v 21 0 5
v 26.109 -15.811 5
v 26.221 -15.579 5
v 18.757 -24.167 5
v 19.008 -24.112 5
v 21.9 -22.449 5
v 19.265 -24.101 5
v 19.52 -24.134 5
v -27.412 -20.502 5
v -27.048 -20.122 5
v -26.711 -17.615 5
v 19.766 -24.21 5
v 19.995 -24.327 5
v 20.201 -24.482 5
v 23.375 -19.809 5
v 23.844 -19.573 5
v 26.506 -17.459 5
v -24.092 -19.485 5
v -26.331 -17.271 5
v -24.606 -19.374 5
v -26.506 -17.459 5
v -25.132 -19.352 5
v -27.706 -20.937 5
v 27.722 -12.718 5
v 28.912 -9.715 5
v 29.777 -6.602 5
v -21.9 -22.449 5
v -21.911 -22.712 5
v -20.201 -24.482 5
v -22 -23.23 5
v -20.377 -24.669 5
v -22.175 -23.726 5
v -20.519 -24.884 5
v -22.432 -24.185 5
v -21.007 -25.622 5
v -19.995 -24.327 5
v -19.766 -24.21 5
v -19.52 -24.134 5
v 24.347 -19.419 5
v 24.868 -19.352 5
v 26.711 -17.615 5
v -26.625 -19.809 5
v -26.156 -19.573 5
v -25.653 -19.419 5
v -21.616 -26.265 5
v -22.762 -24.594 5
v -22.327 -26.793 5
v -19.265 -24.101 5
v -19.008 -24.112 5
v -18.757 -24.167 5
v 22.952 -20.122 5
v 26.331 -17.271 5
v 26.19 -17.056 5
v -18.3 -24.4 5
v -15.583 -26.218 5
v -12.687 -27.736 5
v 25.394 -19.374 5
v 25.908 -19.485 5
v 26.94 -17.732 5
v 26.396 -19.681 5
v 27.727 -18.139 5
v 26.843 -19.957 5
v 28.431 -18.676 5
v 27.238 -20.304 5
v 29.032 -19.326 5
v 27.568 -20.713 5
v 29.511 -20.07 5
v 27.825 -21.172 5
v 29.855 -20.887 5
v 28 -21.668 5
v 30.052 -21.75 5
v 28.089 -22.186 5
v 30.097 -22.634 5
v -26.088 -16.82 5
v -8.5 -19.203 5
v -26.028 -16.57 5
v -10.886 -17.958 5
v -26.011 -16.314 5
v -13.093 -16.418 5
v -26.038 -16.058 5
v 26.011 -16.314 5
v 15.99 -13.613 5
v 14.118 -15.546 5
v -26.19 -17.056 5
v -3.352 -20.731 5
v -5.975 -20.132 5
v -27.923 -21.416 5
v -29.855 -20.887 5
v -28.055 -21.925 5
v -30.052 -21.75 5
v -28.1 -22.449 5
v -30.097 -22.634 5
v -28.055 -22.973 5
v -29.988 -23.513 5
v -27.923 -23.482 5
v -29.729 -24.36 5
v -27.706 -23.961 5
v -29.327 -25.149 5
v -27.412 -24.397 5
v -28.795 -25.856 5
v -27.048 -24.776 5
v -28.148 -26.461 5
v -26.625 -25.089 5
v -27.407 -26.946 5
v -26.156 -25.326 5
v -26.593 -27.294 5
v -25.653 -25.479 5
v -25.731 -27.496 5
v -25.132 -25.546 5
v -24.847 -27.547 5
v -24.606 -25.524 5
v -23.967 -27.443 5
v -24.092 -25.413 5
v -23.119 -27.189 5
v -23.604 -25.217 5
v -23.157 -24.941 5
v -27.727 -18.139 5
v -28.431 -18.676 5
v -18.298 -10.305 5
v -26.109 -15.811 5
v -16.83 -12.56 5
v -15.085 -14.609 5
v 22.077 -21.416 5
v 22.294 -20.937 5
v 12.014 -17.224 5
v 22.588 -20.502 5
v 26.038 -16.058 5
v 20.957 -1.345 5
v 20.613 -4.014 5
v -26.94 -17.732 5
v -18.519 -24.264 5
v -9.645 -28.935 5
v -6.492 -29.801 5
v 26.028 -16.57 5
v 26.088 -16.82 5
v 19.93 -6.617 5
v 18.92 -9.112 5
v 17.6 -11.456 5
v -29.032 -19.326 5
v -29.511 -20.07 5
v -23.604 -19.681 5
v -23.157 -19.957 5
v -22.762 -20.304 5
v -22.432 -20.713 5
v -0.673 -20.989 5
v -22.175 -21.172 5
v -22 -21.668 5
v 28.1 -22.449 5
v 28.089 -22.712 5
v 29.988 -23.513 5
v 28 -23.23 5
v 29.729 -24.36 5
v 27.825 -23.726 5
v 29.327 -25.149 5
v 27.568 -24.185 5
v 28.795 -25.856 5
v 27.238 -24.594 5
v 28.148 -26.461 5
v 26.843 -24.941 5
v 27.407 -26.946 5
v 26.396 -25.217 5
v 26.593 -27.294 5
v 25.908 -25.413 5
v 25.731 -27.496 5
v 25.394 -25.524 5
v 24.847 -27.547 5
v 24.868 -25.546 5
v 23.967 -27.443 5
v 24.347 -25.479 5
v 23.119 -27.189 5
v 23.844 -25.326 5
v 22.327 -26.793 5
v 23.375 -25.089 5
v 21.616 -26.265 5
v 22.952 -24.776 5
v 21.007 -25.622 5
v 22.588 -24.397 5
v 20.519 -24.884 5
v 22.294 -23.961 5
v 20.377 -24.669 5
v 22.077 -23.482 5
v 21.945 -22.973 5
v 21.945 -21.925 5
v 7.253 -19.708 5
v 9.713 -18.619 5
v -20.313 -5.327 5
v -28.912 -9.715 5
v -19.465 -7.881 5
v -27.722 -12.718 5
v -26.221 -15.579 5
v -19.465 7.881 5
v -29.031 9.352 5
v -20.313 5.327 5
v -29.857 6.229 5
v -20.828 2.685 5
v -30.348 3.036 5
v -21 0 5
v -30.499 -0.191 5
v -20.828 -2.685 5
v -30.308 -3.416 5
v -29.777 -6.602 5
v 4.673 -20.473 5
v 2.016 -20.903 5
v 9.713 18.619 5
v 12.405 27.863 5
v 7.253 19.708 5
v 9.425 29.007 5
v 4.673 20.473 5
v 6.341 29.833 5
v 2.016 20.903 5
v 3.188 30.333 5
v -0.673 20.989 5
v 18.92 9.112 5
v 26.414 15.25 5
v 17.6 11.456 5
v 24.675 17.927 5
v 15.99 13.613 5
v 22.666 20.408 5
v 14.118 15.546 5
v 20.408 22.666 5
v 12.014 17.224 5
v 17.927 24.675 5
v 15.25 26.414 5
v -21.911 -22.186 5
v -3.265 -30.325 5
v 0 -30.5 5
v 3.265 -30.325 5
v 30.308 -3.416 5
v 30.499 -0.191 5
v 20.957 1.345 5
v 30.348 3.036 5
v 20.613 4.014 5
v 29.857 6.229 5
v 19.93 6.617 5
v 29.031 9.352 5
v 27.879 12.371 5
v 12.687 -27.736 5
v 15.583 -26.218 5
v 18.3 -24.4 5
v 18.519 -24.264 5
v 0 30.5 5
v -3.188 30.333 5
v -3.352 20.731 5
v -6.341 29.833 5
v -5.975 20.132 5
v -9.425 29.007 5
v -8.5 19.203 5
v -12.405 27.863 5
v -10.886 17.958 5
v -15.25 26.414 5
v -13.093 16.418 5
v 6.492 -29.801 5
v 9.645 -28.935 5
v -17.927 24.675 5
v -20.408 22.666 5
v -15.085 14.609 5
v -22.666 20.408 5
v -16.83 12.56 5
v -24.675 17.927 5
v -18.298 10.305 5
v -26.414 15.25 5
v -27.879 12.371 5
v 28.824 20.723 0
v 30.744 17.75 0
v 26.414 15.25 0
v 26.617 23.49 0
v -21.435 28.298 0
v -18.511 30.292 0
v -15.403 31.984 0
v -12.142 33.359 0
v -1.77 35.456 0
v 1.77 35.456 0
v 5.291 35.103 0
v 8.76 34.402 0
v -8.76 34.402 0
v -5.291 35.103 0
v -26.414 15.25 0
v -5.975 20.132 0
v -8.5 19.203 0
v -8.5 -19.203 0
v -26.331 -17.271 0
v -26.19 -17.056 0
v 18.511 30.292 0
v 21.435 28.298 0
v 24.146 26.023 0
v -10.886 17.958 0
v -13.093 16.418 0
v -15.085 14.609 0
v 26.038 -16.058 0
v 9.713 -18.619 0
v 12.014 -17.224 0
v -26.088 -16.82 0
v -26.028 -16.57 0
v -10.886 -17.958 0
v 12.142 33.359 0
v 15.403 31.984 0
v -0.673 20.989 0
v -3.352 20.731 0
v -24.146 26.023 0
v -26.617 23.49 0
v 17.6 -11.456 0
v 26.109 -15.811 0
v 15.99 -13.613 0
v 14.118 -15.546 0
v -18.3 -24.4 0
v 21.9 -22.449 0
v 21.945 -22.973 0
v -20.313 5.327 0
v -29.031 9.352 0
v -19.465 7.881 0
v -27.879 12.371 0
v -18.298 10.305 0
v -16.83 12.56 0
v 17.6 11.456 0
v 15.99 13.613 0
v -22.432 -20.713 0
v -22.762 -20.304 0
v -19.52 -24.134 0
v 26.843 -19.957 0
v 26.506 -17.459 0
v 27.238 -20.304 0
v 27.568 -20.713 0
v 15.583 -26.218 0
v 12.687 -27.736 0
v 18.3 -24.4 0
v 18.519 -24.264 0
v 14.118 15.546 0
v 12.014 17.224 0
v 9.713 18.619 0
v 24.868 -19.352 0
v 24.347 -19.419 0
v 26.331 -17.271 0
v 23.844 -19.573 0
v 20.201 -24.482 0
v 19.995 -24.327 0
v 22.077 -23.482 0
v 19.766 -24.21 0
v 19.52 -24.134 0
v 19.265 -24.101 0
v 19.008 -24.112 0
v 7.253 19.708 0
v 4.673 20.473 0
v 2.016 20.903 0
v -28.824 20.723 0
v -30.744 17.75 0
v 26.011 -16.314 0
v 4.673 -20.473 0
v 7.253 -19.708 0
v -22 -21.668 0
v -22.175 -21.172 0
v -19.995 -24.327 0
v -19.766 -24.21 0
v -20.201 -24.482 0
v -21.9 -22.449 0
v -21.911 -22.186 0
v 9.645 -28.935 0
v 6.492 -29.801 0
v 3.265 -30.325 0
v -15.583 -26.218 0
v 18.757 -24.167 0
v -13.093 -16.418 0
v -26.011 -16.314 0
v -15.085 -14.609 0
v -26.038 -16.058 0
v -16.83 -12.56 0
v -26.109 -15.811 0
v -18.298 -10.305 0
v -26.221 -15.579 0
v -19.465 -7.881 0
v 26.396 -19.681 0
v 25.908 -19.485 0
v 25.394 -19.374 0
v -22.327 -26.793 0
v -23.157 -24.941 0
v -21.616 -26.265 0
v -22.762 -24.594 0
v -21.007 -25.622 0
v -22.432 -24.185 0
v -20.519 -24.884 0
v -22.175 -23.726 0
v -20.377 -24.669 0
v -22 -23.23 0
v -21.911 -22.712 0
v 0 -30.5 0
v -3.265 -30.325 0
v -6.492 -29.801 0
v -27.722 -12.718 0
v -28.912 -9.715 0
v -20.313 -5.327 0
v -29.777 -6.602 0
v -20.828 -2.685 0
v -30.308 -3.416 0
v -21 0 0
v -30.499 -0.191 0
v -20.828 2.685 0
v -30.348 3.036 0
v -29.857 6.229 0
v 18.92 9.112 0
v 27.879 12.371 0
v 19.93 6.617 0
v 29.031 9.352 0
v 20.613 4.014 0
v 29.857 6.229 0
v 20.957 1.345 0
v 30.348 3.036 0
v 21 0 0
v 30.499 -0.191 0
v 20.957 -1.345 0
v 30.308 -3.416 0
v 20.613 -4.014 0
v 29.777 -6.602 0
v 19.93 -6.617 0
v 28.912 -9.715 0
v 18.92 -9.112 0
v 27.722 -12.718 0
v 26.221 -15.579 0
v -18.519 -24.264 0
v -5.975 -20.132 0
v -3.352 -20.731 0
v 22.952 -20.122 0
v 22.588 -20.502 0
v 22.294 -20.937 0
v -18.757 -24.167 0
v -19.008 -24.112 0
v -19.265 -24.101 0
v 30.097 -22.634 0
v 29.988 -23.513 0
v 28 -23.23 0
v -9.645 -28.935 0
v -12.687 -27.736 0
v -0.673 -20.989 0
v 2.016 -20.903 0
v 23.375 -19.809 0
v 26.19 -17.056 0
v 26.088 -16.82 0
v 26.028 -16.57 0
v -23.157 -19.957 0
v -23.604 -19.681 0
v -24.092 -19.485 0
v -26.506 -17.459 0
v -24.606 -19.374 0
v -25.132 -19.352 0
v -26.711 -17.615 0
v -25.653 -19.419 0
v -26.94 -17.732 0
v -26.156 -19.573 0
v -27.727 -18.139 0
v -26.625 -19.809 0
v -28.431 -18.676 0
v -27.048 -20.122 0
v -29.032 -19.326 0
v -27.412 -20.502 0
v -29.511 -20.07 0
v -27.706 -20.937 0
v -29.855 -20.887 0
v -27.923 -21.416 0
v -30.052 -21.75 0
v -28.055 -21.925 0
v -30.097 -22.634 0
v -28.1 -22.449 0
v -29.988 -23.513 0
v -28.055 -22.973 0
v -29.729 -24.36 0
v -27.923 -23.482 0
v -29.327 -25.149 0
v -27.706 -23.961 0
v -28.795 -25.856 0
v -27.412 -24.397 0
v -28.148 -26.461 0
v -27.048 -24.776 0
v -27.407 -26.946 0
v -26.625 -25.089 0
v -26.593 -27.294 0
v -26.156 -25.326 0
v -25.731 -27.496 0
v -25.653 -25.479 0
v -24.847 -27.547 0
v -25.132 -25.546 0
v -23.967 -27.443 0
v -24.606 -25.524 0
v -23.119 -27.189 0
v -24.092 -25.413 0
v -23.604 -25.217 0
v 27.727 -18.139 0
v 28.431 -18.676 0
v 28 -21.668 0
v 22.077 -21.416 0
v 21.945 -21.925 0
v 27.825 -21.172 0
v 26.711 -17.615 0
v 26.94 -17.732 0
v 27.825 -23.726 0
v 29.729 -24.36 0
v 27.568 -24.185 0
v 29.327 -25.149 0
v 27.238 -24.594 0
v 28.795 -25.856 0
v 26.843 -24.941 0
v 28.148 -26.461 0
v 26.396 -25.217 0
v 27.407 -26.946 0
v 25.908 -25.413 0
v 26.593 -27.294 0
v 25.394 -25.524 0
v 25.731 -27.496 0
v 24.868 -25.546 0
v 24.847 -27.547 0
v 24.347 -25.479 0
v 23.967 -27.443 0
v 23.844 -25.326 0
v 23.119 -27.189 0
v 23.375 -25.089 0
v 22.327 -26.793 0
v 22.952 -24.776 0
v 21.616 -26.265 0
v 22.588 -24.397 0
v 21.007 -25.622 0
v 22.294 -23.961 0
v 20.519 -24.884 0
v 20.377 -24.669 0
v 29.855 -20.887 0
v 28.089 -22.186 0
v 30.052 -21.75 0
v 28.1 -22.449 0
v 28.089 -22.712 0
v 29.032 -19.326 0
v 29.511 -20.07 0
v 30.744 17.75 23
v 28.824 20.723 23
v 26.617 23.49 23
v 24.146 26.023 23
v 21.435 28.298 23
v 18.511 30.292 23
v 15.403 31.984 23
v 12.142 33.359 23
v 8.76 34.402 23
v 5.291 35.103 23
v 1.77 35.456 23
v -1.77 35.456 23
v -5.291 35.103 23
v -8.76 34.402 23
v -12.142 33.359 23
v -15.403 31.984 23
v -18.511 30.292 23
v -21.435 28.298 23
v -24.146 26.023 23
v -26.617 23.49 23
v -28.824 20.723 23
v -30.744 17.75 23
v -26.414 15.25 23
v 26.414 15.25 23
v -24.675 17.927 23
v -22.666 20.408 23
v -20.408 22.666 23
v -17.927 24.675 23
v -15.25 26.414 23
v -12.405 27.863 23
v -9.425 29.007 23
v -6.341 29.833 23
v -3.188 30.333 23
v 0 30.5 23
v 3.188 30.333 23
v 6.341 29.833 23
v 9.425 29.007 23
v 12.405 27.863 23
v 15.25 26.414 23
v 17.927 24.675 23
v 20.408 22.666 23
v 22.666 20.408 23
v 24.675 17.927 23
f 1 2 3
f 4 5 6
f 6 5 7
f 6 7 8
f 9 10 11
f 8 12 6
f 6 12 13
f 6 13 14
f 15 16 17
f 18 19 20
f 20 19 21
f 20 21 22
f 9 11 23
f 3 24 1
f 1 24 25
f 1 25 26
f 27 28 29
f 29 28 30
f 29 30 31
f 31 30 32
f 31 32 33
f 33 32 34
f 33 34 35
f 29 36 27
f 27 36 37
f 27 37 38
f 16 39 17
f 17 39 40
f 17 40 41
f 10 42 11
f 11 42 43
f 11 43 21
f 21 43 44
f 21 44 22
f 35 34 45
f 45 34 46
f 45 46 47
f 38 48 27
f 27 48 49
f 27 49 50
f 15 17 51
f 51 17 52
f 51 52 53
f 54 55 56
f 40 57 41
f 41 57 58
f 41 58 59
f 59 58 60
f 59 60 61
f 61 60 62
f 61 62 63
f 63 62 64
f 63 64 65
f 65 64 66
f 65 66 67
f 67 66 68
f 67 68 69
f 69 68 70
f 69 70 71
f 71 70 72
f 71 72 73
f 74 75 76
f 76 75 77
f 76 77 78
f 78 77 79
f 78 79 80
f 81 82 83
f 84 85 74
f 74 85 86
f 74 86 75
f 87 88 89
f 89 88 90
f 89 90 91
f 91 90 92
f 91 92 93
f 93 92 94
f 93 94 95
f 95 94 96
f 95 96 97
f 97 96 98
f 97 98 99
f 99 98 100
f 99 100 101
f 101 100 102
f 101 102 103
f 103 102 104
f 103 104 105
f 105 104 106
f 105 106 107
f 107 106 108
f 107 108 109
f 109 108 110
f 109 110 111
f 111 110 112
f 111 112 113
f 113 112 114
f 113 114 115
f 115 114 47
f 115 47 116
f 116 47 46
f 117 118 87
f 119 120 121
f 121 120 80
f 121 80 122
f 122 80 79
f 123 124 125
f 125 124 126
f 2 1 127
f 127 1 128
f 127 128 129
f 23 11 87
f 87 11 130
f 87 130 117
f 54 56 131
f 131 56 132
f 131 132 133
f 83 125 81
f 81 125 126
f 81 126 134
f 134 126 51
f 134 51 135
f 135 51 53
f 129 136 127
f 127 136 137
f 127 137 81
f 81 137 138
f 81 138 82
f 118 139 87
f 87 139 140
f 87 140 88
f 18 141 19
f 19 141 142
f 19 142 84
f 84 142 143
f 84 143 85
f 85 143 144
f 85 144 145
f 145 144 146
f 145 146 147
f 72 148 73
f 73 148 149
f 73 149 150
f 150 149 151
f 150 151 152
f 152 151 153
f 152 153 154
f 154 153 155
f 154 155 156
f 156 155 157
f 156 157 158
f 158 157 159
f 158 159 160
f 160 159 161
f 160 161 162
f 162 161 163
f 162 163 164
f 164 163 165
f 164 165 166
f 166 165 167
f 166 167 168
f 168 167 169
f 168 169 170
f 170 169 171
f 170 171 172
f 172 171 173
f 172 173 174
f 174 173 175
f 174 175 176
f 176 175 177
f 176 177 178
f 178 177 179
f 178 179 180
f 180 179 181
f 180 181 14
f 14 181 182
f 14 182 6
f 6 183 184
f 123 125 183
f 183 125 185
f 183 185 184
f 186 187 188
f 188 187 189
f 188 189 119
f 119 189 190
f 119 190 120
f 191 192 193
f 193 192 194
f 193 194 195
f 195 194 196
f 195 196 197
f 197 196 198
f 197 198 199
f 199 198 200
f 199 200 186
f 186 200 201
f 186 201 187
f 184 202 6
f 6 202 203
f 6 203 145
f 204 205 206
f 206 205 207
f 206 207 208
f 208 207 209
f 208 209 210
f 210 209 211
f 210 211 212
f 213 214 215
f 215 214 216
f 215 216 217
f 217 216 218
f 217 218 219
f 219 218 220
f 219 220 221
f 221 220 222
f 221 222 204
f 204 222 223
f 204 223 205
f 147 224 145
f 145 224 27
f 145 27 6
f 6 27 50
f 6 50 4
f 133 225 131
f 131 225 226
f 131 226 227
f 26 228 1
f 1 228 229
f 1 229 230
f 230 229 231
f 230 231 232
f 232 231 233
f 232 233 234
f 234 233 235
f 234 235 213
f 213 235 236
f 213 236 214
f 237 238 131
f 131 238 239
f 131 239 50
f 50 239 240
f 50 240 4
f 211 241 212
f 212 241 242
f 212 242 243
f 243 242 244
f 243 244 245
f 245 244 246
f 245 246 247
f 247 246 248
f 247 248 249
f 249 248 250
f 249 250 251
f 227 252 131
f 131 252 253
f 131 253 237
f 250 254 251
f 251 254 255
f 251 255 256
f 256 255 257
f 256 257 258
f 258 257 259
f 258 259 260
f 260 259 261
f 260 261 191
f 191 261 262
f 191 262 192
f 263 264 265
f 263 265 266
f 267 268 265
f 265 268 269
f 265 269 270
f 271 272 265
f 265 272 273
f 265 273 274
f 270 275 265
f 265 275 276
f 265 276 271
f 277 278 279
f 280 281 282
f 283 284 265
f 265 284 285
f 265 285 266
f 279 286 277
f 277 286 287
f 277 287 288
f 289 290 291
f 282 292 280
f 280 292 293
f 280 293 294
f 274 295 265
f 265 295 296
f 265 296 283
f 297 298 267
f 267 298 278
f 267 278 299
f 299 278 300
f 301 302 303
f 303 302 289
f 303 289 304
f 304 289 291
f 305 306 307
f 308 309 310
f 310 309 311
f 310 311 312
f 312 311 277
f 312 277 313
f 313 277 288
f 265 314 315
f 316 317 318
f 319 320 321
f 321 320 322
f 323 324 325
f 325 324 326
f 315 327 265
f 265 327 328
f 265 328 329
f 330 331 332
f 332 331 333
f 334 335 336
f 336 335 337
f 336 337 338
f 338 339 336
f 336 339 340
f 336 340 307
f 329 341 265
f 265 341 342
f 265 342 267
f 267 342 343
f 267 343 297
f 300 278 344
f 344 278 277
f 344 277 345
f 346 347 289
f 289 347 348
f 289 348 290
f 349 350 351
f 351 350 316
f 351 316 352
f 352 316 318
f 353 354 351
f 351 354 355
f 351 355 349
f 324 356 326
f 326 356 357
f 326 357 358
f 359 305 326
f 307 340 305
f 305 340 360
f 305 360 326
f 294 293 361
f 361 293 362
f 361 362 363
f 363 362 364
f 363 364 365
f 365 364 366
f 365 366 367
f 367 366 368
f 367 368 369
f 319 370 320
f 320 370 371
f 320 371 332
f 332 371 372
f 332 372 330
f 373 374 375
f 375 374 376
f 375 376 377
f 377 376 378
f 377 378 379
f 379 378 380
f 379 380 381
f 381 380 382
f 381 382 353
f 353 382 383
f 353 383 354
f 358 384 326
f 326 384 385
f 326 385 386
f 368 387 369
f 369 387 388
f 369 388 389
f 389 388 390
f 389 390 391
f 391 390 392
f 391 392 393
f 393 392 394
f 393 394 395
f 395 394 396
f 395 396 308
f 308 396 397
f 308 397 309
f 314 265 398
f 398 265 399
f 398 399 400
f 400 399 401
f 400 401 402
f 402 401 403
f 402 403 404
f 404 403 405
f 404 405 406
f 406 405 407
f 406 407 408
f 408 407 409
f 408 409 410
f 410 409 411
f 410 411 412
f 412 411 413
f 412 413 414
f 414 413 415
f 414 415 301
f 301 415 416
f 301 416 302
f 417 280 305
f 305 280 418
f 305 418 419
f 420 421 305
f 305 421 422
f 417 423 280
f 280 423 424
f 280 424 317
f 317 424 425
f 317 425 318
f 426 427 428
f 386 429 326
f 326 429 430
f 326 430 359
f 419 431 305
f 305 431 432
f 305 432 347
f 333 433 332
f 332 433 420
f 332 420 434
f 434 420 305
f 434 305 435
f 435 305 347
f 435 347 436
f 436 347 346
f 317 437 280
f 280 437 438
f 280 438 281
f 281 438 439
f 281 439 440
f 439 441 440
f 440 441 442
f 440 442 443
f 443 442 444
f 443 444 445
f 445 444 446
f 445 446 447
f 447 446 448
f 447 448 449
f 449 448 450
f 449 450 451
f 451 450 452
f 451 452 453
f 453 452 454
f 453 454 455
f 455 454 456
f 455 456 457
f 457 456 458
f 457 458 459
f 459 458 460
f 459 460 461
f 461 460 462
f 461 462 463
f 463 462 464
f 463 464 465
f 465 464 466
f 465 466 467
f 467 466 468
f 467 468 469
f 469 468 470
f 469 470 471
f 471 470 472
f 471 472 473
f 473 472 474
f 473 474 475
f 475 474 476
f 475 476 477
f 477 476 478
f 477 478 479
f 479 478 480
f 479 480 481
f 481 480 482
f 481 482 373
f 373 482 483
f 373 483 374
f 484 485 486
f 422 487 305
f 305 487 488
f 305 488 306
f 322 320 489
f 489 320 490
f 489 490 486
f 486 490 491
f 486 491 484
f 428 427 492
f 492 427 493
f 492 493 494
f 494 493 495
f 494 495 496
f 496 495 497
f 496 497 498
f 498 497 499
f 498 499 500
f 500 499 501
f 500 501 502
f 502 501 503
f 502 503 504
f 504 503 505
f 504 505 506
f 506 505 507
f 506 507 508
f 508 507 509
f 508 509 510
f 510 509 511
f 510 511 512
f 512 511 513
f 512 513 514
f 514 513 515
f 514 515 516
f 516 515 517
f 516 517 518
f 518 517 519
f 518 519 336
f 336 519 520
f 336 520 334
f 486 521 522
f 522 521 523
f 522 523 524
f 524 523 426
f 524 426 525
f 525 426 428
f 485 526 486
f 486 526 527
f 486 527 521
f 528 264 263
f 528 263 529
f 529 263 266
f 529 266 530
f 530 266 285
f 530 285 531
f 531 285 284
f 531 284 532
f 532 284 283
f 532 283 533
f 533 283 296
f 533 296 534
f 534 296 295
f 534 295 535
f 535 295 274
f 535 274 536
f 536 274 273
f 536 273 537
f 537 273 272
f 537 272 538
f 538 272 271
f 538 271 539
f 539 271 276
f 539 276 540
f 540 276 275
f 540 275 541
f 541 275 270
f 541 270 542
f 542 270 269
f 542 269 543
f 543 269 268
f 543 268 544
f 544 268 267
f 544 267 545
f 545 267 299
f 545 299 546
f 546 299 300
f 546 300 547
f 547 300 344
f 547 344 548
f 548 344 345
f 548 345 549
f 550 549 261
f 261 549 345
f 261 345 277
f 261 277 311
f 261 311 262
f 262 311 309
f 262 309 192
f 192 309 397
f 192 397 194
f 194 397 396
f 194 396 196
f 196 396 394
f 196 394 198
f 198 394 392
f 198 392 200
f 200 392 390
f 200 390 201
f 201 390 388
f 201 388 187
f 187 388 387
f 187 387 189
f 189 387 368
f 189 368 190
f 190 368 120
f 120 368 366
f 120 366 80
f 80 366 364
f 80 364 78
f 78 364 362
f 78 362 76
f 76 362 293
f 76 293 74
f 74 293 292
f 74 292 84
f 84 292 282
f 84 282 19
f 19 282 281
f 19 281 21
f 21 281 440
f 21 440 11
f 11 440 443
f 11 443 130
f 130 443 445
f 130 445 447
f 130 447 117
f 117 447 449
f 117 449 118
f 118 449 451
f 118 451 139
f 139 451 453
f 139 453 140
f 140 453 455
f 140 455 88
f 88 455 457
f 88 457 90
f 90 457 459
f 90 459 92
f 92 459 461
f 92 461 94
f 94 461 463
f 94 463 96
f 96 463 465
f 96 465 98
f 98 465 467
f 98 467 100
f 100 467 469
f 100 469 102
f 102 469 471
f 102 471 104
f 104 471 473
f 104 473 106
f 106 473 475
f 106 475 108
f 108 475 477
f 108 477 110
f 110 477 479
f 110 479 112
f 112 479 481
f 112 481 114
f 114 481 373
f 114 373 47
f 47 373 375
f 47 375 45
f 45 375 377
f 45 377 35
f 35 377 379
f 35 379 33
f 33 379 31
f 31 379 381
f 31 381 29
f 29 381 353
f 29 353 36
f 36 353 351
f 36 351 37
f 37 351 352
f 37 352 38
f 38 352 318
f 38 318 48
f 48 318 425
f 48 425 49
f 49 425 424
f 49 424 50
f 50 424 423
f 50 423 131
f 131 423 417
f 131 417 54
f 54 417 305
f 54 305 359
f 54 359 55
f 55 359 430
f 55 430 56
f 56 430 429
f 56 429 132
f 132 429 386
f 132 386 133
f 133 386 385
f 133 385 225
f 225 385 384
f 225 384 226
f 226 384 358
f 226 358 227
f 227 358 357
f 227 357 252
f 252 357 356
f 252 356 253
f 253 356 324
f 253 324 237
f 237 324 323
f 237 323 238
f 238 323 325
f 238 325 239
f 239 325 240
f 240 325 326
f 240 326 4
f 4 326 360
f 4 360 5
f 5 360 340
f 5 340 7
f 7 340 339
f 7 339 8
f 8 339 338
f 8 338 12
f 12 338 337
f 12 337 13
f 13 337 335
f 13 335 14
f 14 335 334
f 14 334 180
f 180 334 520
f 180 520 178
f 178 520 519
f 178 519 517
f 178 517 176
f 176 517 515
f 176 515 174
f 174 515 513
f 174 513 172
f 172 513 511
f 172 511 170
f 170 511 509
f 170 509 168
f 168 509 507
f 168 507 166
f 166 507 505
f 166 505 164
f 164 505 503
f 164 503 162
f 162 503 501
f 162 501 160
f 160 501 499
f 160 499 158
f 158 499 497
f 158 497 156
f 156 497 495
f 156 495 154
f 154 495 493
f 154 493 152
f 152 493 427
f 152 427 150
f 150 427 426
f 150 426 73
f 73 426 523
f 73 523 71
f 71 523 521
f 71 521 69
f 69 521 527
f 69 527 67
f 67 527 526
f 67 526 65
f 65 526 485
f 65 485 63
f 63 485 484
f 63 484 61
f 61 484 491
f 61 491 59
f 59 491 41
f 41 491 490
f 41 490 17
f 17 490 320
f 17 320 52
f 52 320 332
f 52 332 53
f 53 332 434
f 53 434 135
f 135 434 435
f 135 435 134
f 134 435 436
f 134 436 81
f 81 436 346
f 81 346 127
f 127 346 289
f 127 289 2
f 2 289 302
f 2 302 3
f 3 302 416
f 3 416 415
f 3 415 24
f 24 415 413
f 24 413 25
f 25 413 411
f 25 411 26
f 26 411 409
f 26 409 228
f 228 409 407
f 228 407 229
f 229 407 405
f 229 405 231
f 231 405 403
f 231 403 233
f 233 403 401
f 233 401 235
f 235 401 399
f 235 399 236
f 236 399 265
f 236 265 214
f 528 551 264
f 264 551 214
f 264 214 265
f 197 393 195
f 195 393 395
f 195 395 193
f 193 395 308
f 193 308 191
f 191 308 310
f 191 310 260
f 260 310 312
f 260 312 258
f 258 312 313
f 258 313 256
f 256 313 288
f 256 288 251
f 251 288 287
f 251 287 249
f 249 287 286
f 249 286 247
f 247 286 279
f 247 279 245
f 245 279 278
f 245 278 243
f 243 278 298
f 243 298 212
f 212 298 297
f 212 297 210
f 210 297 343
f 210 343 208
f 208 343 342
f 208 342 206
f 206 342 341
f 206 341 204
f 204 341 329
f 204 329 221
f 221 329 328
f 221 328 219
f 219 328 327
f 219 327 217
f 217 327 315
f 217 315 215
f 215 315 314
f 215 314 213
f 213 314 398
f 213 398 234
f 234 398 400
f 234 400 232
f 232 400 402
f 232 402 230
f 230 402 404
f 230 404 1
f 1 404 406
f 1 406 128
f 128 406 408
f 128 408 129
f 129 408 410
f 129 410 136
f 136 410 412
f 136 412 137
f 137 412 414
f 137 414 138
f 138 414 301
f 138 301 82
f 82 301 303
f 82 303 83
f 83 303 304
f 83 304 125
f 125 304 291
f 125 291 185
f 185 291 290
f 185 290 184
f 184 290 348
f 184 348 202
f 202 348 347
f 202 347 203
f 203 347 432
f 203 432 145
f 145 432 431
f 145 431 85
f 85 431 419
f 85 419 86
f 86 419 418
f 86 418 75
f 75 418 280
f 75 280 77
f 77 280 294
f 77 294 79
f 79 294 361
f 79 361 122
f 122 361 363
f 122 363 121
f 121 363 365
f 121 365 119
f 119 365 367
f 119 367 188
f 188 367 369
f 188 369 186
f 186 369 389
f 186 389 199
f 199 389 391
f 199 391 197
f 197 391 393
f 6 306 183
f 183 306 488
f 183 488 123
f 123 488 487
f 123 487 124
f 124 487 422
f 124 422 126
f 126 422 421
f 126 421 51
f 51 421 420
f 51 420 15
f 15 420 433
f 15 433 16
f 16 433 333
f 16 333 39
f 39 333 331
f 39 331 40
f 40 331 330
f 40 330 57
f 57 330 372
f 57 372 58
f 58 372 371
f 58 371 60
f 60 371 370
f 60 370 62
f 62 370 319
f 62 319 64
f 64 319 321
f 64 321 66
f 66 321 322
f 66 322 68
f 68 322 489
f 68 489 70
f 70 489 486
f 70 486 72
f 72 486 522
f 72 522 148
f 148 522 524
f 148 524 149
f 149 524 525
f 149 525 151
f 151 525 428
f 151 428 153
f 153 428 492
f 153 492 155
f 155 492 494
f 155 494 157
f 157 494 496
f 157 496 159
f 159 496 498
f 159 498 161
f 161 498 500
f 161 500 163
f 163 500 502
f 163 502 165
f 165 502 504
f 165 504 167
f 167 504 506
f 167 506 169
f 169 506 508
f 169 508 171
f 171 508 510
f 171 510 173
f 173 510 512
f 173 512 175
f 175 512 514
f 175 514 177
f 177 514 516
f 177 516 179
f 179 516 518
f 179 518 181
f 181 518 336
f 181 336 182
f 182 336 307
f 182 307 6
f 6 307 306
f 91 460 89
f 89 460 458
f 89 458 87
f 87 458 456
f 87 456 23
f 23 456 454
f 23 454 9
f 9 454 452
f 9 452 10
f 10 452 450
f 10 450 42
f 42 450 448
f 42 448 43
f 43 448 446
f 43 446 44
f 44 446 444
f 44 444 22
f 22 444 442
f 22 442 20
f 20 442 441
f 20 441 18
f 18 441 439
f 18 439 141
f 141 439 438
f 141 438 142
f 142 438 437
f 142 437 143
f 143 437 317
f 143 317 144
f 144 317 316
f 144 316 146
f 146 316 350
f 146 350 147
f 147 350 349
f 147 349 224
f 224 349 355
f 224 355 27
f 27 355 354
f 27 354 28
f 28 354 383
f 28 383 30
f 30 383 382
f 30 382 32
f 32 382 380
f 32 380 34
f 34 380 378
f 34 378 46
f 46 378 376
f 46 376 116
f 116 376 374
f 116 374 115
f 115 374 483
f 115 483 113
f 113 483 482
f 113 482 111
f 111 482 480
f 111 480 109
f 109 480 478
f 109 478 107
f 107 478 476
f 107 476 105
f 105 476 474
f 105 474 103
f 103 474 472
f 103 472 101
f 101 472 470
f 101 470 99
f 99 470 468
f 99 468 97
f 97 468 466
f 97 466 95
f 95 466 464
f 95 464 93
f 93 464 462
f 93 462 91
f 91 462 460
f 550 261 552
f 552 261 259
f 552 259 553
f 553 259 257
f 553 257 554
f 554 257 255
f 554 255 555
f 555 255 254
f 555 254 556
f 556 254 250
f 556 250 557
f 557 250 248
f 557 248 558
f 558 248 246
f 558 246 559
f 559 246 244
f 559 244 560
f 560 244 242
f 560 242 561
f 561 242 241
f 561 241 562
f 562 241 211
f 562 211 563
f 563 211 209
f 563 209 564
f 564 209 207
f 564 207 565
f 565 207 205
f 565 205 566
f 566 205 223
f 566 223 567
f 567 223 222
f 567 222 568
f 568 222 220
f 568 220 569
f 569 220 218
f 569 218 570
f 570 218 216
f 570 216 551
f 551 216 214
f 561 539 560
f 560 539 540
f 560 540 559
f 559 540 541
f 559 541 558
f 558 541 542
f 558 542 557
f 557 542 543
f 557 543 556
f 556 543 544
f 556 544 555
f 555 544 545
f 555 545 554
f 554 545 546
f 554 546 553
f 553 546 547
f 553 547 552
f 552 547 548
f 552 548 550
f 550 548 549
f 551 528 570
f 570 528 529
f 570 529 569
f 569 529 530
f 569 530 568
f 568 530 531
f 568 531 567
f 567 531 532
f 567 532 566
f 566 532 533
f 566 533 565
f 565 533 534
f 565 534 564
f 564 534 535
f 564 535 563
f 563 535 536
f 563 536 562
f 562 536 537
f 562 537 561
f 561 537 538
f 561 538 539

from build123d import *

# Parameters (mm, degrees)
ESBO_O1_R                = 21
ESBO_O1_R_2              = 3.1
RESSALTO_EXTRUS_O1_DEPTH = 5
RESSALTO_EXTRUS_O2_DEPTH = 18


with BuildPart() as part:
    # Esboço1 → Ressalto-extrusão1 (new body)
    with BuildSketch(Plane.XY):
        with BuildLine():
            Line((-26.413774815, 15.25), (-30.743901834, 17.75))
            ThreePointArc((-30.743901834, 17.75), (0, 35.5), (30.743901834, 17.75))
            Line((30.743901834, 17.75), (26.413774815, 15.25))
            ThreePointArc((26.413774815, 15.25), (30.49940407, -0.19066032), (26.22105388, -15.579035061))
            ThreePointArc((26.22105388, -15.579035061), (26.087819075, -16.82024855), (26.940019837, -17.73245264))
            ThreePointArc((26.940019837, -17.73245264), (28.794642857, -25.856499042), (20.518582449, -24.883575301))
            ThreePointArc((20.518582449, -24.883575301), (19.520268693, -24.134087419), (18.30049416, -24.399629372))
            ThreePointArc((18.30049416, -24.399629372), (0, -30.5), (-18.30049416, -24.399629372))
            ThreePointArc((-18.30049416, -24.399629372), (-19.520268693, -24.134087419), (-20.518582449, -24.883575301))
            ThreePointArc((-20.518582449, -24.883575301), (-28.794642857, -25.856499042), (-26.940019837, -17.73245264))
            ThreePointArc((-26.940019837, -17.73245264), (-26.087819075, -16.82024855), (-26.22105388, -15.579035061))
            ThreePointArc((-26.22105388, -15.579035061), (-30.49940407, -0.19066032), (-26.413774815, 15.25))
        make_face()
        Circle(ESBO_O1_R, mode=Mode.SUBTRACT)
        with Locations((25, -22.449053432)):
            Circle(ESBO_O1_R_2, mode=Mode.SUBTRACT)
        with Locations((-25, -22.449053432)):
            Circle(ESBO_O1_R_2, mode=Mode.SUBTRACT)
    extrude(amount=RESSALTO_EXTRUS_O1_DEPTH)

    # Esboço2 → Ressalto-extrusão2 (add)
    with BuildSketch(Plane.XY.offset(5)):
        with BuildLine():
            Line((-26.413774815, 15.25), (-30.743901834, 17.75))
            ThreePointArc((-30.743901834, 17.75), (0, 35.5), (30.743901834, 17.75))
            Line((30.743901834, 17.75), (26.413774815, 15.25))
            ThreePointArc((26.413774815, 15.25), (0, 30.5), (-26.413774815, 15.25))
        make_face()
    extrude(amount=RESSALTO_EXTRUS_O2_DEPTH)


solid = part.part
